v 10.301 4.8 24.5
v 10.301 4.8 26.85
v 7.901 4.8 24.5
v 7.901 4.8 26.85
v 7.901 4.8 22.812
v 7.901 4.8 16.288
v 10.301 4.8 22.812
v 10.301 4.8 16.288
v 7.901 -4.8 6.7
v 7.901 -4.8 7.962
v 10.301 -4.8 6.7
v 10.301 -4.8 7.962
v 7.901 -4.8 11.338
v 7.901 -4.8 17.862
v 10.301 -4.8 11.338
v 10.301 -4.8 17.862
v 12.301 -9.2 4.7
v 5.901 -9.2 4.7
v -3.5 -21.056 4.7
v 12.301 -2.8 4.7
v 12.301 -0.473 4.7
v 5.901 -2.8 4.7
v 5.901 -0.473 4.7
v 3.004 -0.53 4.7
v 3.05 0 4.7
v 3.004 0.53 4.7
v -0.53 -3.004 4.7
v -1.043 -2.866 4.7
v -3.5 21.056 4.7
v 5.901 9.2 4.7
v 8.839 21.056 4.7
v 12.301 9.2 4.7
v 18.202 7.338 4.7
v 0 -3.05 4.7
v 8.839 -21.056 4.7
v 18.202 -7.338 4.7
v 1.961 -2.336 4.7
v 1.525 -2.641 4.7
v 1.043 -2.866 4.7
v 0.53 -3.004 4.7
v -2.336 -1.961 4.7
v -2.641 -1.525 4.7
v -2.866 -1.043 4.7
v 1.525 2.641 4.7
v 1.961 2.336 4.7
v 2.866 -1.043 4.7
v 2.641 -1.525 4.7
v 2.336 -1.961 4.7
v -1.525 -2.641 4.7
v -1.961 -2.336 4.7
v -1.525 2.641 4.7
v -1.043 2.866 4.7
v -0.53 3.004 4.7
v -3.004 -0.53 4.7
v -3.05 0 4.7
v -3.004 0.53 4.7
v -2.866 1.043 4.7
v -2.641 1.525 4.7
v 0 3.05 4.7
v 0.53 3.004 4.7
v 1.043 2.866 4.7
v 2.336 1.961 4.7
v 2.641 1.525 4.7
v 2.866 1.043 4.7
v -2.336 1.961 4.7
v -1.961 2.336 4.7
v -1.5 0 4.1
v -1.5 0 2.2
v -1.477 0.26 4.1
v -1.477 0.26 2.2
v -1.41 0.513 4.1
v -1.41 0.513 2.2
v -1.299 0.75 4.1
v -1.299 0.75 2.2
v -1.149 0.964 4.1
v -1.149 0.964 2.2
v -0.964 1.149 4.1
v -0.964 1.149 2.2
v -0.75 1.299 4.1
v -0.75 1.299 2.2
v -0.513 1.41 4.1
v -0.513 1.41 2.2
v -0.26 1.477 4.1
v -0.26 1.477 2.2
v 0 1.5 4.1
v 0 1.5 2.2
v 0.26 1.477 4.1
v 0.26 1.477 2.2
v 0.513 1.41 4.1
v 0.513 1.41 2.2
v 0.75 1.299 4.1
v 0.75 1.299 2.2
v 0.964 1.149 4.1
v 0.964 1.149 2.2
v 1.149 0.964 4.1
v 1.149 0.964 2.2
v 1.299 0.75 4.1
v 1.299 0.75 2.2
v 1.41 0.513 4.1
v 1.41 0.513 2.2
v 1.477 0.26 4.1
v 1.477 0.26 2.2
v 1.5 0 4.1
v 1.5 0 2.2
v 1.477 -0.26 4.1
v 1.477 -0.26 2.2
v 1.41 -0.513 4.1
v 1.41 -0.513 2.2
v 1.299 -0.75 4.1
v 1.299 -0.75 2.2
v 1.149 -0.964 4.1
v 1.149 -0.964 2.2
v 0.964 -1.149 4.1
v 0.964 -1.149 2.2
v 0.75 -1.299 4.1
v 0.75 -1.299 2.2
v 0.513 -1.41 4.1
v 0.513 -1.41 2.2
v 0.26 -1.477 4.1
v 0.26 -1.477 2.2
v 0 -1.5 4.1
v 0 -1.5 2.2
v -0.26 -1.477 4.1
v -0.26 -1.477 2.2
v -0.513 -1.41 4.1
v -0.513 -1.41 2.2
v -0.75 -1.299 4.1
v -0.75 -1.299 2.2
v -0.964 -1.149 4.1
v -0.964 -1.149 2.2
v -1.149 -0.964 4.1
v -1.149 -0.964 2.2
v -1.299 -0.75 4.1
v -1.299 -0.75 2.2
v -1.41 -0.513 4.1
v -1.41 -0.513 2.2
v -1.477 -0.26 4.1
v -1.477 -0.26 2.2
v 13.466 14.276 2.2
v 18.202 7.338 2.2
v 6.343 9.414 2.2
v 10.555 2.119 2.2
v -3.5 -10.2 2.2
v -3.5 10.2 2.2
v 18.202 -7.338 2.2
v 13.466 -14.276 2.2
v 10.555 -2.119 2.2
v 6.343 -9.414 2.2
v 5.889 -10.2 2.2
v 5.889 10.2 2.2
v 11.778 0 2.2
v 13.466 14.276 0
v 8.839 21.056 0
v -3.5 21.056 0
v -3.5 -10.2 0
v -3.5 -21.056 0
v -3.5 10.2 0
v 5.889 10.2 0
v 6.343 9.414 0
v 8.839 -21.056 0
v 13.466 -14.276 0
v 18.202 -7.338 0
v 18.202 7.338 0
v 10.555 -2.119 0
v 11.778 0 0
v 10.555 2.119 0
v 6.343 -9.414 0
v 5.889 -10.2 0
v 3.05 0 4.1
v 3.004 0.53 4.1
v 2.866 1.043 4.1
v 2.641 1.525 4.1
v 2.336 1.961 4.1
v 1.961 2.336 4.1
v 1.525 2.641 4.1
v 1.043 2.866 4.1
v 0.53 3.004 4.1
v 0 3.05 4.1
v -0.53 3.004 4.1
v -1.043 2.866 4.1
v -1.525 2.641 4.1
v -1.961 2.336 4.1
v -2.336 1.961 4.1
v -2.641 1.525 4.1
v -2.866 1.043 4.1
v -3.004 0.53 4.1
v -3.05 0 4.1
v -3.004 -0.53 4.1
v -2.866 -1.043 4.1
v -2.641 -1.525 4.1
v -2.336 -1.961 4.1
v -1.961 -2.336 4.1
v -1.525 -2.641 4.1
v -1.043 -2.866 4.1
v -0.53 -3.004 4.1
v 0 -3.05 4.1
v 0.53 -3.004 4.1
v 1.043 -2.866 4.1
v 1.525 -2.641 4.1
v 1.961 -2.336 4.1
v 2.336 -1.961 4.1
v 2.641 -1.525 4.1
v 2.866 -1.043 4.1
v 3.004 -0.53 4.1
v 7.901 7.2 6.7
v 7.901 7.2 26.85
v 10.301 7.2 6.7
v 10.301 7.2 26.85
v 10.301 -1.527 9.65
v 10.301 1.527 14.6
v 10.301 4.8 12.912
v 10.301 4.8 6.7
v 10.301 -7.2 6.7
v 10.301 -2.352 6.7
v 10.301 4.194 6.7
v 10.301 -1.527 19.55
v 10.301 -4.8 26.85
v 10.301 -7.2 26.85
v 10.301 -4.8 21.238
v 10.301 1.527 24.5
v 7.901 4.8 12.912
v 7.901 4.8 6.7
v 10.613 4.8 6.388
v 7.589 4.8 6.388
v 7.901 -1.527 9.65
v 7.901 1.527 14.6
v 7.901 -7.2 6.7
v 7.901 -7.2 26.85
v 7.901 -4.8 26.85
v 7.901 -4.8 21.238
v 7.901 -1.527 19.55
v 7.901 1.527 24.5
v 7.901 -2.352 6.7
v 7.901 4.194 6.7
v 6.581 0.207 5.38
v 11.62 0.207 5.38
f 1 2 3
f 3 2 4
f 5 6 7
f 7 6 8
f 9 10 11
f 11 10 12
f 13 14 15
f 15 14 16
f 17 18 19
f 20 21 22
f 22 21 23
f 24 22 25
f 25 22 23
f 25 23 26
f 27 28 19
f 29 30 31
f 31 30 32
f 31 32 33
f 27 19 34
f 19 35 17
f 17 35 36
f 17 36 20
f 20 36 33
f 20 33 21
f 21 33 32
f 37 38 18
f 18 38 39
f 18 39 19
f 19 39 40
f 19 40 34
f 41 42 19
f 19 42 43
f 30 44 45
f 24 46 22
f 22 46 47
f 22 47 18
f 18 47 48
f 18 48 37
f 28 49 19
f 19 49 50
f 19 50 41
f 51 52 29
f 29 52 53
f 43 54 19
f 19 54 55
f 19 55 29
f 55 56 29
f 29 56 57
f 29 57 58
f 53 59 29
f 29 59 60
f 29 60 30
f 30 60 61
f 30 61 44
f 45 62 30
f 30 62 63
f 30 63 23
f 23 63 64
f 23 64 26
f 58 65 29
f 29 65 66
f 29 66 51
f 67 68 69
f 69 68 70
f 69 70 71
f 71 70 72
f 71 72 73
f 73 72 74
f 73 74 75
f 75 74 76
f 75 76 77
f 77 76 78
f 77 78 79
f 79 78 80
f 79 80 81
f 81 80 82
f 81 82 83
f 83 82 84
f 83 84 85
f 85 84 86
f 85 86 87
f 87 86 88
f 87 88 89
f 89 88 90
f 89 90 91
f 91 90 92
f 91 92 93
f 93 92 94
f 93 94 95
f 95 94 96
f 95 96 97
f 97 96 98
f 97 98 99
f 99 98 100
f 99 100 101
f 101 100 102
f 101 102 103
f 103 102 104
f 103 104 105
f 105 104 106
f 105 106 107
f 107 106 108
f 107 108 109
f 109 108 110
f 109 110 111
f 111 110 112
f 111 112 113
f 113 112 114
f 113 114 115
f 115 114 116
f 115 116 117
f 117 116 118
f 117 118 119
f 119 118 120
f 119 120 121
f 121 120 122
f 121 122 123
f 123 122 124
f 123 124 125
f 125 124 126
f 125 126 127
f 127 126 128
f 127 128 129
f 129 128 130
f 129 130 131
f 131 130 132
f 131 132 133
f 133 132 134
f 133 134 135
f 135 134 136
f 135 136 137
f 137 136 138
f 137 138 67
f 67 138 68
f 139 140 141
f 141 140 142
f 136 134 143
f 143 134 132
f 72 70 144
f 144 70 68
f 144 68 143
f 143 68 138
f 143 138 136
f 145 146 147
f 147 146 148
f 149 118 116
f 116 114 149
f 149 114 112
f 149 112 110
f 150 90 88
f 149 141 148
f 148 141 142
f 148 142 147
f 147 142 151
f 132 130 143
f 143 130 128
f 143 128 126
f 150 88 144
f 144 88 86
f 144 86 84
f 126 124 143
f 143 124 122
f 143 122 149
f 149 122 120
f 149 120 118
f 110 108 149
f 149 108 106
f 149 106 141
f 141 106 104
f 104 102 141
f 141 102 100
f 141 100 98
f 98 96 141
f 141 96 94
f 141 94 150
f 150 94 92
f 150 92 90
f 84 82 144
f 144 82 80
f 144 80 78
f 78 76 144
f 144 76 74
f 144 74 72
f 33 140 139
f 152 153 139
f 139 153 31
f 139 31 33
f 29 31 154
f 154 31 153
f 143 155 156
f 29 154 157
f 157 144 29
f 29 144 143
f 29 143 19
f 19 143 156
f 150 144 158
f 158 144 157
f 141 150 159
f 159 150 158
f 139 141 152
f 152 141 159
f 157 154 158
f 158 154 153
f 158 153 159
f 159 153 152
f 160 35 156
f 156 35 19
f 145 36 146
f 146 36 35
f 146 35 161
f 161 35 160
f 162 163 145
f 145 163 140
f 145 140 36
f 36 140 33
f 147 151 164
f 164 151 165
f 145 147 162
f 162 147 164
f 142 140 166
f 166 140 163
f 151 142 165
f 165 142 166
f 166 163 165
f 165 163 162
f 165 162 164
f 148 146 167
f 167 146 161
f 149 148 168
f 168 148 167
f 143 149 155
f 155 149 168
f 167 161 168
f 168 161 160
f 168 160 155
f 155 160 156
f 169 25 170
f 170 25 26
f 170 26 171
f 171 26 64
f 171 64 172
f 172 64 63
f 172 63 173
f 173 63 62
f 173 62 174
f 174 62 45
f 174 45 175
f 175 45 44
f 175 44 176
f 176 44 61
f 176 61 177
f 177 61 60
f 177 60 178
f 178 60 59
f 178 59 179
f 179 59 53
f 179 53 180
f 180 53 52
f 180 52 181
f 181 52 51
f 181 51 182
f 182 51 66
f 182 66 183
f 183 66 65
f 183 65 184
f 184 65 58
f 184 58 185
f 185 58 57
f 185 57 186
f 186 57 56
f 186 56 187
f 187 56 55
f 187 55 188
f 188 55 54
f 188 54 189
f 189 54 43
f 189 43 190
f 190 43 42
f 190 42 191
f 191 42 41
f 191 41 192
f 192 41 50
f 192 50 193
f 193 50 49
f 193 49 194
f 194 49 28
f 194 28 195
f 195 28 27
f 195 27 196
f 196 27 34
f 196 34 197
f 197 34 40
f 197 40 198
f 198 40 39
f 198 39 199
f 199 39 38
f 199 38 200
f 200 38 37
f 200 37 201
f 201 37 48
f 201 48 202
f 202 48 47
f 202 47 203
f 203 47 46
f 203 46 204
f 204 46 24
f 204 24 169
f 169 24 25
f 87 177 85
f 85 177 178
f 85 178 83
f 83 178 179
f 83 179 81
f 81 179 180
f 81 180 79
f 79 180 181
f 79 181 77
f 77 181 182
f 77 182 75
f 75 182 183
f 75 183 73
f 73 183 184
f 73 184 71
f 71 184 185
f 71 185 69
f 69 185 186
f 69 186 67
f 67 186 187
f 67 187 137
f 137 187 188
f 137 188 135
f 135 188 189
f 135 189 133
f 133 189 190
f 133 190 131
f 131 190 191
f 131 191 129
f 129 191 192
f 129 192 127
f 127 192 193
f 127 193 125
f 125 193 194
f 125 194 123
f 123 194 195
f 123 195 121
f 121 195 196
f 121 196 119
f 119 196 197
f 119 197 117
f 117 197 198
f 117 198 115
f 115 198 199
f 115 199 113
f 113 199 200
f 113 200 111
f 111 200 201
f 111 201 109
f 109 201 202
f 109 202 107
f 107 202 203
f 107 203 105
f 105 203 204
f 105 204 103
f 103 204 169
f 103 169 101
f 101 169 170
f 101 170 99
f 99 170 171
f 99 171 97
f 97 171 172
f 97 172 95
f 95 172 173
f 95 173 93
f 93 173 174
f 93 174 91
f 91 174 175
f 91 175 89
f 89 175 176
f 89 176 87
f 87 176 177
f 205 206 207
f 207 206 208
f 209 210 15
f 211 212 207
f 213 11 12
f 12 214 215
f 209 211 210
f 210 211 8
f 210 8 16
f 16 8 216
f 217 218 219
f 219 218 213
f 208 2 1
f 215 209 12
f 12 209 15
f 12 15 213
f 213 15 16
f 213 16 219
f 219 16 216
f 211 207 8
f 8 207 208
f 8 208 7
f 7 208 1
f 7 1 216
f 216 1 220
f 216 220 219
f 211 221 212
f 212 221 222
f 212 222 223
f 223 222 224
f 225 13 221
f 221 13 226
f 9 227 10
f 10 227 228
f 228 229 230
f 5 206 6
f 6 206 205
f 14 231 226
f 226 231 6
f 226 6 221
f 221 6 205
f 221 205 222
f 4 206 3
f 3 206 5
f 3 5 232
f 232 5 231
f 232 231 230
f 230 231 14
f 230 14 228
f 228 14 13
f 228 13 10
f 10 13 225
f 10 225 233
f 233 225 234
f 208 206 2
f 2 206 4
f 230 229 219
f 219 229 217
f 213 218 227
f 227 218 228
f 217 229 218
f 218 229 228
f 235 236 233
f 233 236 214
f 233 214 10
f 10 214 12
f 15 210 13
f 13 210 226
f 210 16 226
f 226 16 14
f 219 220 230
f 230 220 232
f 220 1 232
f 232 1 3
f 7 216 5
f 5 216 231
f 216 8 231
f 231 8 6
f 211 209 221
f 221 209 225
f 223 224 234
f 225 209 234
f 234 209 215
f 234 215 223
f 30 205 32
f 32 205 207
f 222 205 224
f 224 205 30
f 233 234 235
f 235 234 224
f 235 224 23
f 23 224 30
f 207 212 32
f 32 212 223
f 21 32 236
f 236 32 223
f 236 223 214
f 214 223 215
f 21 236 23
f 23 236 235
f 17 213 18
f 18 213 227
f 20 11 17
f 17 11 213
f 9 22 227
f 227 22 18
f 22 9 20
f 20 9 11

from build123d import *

# Parameters (mm, degrees)
BOSS_EXTRUDE1_DEPTH   = 2.2
BOSS_EXTRUDE1_2_DEPTH = 2.2
BOSS_EXTRUDE1_3_DEPTH = 2.2
SKETCH3_R             = 1.5
BOSS_EXTRUDE2_DEPTH   = 2.5
SKETCH4_R             = 3.05
CUT_EXTRUDE1_DEPTH    = 0.6
SKETCH5_W             = 2.4
SKETCH5_H             = 2.4
BOSS_EXTRUDE3_DEPTH   = 22.15
BOSS_EXTRUDE4_DEPTH   = 2.4
CHAMFER1_SIZE         = 2
CHAMFER1_SIZE_2       = 1.48467926


with BuildPart() as part:
    # Sketch1 → Boss-Extrude1 (new body)
    with BuildSketch(Plane.XY):
        Polygon((-3.5, 21.055685406), (-3.5, 10.2), (5.888972746, 10.2), (6.342667922, 9.414176903), (13.466375906, 14.276390289), (8.839237969, 21.055685406), align=None)
    extrude(amount=BOSS_EXTRUDE1_DEPTH)



with BuildPart() as body_2:
    # Sketch1 → Boss-Extrude1 2 (new body)
    with BuildSketch(Plane.XY):
        Polygon((18.201821848, -7.338411352), (10.554607275, -2.118883945), (11.777945491, 0), (10.554607275, 2.118883945), (18.201821848, 7.338411352), align=None)
    extrude(amount=BOSS_EXTRUDE1_2_DEPTH)


with BuildPart() as body_3:
    # Sketch1 → Boss-Extrude1 3 (new body)
    with BuildSketch(Plane.XY):
        Polygon((8.839237969, -21.055685406), (13.466375906, -14.276390289), (6.342667922, -9.414176903), (5.888972746, -10.2), (-3.5, -10.2), (-3.5, -21.055685406), align=None)
    extrude(amount=BOSS_EXTRUDE1_3_DEPTH)


with BuildPart() as part_1:
    add(part.part)

    add(body_2.part)  # Boss-Extrude2 merges body 2

    add(body_3.part)  # Boss-Extrude2 merges body 3
    # Sketch3 → Boss-Extrude2 (add)
    with BuildSketch(Plane.XY.offset(2.2)):
        Polygon((-3.5, 21.055685406), (-3.5, -21.055685406), (8.839237969, -21.055685406), (18.201821848, -7.338411352), (18.201821848, 7.338411352), (8.839237969, 21.055685406), align=None)
        Circle(SKETCH3_R, mode=Mode.SUBTRACT)
    extrude(amount=BOSS_EXTRUDE2_DEPTH)

    # Sketch4 → Cut-Extrude1 (cut)
    with BuildSketch(Plane.XY.offset(4.7)):
        Circle(SKETCH4_R)
    extrude(amount=-CUT_EXTRUDE1_DEPTH, mode=Mode.SUBTRACT)

    # Sketch5 → Boss-Extrude3 (add)
    with BuildSketch(Plane.XY.offset(4.7)):
        with Locations((9.100910924, 6)):
            Rectangle(SKETCH5_W, SKETCH5_H)
        with Locations((9.100910924, -6)):
            Rectangle(SKETCH5_W, SKETCH5_H)
    extrude(amount=BOSS_EXTRUDE3_DEPTH)

    # Sketch6 → Boss-Extrude4 (add)
    with BuildSketch(Plane(origin=(10.300910924, 0, 0), x_dir=(0, 0, -1), z_dir=(1, 0, 0))):
        Polygon((-6.387662753, 4.8), (-9.65, -1.526957086), (-12.912337247, 4.8), (-16.287662753, 4.8), (-19.55, -1.526957086), (-22.812337247, 4.8), (-24.5, 4.8), (-24.5, 1.526957086), (-21.237662753, -4.8), (-17.862337247, -4.8), (-14.6, 1.526957086), (-11.337662753, -4.8), (-7.962337247, -4.8), (-4.7, 1.526957086), (-4.7, 4.8), align=None)
    extrude(amount=-BOSS_EXTRUDE4_DEPTH)

    # Chamfer1
    # the kernel refuses this chamfer: 2, 1.48467926 mm, written as the material it adds along each edge
    with BuildSketch(Plane(origin=(15.4442769, 1.526957086, 4.7), x_dir=(0, -1, 0), z_dir=(-1, 0, 0))) as chamfer1_piece_1_section:
        Polygon((CHAMFER1_SIZE, 0), (CHAMFER1_SIZE_2 * 0.888803167403, CHAMFER1_SIZE_2 * 0.458289133192), (0, 0), align=None)
    chamfer1_piece_1 = extrude(amount=12.686731952, mode=Mode.PRIVATE)
    chamfer1_piece_1 = split(chamfer1_piece_1, bisect_by=Plane(origin=(10.672593912, 1.526957086, 9.471682988), z_dir=(0.7071067811865476, 0, -0.7071067811865476)), keep=Keep.TOP, mode=Mode.PRIVATE)
    chamfer1_piece_1 = split(chamfer1_piece_1, bisect_by=Plane(origin=(13.872593912, 1.526957086, 3.128317012), z_dir=(-0.7071067811865476, 0, -0.7071067811865476)), keep=Keep.TOP, mode=Mode.PRIVATE)
    add(chamfer1_piece_1)
    with BuildSketch(Plane(origin=(2.757544948, 7.2, 4.7), x_dir=(0, 1, 0), z_dir=(1, 0, 0))) as chamfer1_piece_2_section:
        Polygon((CHAMFER1_SIZE, 0), (0, CHAMFER1_SIZE), (0, 0), align=None)
    chamfer1_piece_2 = extrude(amount=12.686731952, mode=Mode.PRIVATE)
    chamfer1_piece_2 = split(chamfer1_piece_2, bisect_by=Plane(origin=(4.329227936, 7.2, 3.128317012), z_dir=(0.7071067811865476, 0, -0.7071067811865476)), keep=Keep.TOP, mode=Mode.PRIVATE)
    chamfer1_piece_2 = split(chamfer1_piece_2, bisect_by=Plane(origin=(7.529227936, 7.2, 9.471682988), z_dir=(-0.7071067811865476, 0, -0.7071067811865476)), keep=Keep.TOP, mode=Mode.PRIVATE)
    add(chamfer1_piece_2)
    with BuildSketch(Plane(origin=(10.300910924, 12.343365976, 4.7), x_dir=(1, 0, 0), z_dir=(0, -1, 0))) as chamfer1_piece_3_section:
        Polygon((CHAMFER1_SIZE, 0), (0, CHAMFER1_SIZE), (0, 0), align=None)
    chamfer1_piece_3 = extrude(amount=15.959774866, mode=Mode.PRIVATE)
    chamfer1_piece_3 = split(chamfer1_piece_3, bisect_by=Plane(origin=(10.300910924, 4.8, 4.7), z_dir=(0, 1, 0)), keep=Keep.TOP, mode=Mode.PRIVATE)
    chamfer1_piece_3 = split(chamfer1_piece_3, bisect_by=Plane(origin=(10.300910924, 10.771682988, 3.128317012), z_dir=(0, -0.7071067811865476, -0.7071067811865476)), keep=Keep.TOP, mode=Mode.PRIVATE)
    add(chamfer1_piece_3)
    with BuildSketch(Plane(origin=(10.300910924, 12.343365976, 4.7), x_dir=(1, 0, 0), z_dir=(0, -1, 0))) as chamfer1_piece_4_section:
        Polygon((CHAMFER1_SIZE, 0), (0, CHAMFER1_SIZE), (0, 0), align=None)
    chamfer1_piece_4 = extrude(amount=15.959774866, mode=Mode.PRIVATE)
    chamfer1_piece_4 = split(chamfer1_piece_4, bisect_by=Plane(origin=(10.300910924, 11.446474594, 2.96057429), z_dir=(0, -0.4582891331950048, -0.8888031674084939)), keep=Keep.TOP, mode=Mode.PRIVATE)
    chamfer1_piece_4 = split(chamfer1_piece_4, bisect_by=Plane(origin=(10.300910924, 5.935161531, 11.108204445), z_dir=(0, 0.7071067811865488, -0.7071067811865462)), keep=Keep.TOP, mode=Mode.PRIVATE)
    add(chamfer1_piece_4)
    with BuildSketch(Plane(origin=(10.300910924, 12.343365976, 4.7), x_dir=(1, 0, 0), z_dir=(0, -1, 0))) as chamfer1_piece_5_section:
        Polygon((CHAMFER1_SIZE, 0), (0, CHAMFER1_SIZE), (0, 0), align=None)
    chamfer1_piece_5 = extrude(amount=15.959774866, mode=Mode.PRIVATE)
    chamfer1_piece_5 = split(chamfer1_piece_5, bisect_by=Plane(origin=(10.300910924, 10.071607195, 0.294164788), z_dir=(0, 0.4582891331950048, 0.8888031674084939)), keep=Keep.TOP, mode=Mode.PRIVATE)
    chamfer1_piece_5 = split(chamfer1_piece_5, bisect_by=Plane(origin=(10.300910924, 5.935161531, 11.108204445), z_dir=(0, -0.7071067811865488, 0.7071067811865462)), keep=Keep.TOP, mode=Mode.PRIVATE)
    add(chamfer1_piece_5)
    with BuildSketch(Plane(origin=(7.900910924, -3.61640889, 4.7), x_dir=(-1, 0, 0), z_dir=(0, 1, 0))) as chamfer1_piece_6_section:
        Polygon((CHAMFER1_SIZE, 0), (0, CHAMFER1_SIZE), (0, 0), align=None)
    chamfer1_piece_6 = extrude(amount=15.959774866, mode=Mode.PRIVATE)
    chamfer1_piece_6 = split(chamfer1_piece_6, bisect_by=Plane(origin=(7.900910924, -2.53615324, 6.795041262), z_dir=(0, 0.4582891331950048, 0.8888031674084939)), keep=Keep.TOP, mode=Mode.PRIVATE)
    chamfer1_piece_6 = split(chamfer1_piece_6, bisect_by=Plane(origin=(7.900910924, -1.16128584, 9.461450764), z_dir=(0, -0.4582891331950048, -0.8888031674084939)), keep=Keep.TOP, mode=Mode.PRIVATE)
    add(chamfer1_piece_6)
    with BuildSketch(Plane(origin=(7.900910924, -3.61640889, 4.7), x_dir=(-1, 0, 0), z_dir=(0, 1, 0))) as chamfer1_piece_7_section:
        Polygon((CHAMFER1_SIZE, 0), (0, CHAMFER1_SIZE), (0, 0), align=None)
    chamfer1_piece_7 = extrude(amount=15.959774866, mode=Mode.PRIVATE)
    chamfer1_piece_7 = split(chamfer1_piece_7, bisect_by=Plane(origin=(7.900910924, -1.16128584, 9.461450764), z_dir=(0, -0.4582891331950048, -0.8888031674084939)), keep=Keep.TOP, mode=Mode.PRIVATE)
    chamfer1_piece_7 = split(chamfer1_piece_7, bisect_by=Plane(origin=(7.900910924, -2.044725902, 3.128317012), z_dir=(0, 0.7071067811865488, -0.7071067811865462)), keep=Keep.TOP, mode=Mode.PRIVATE)
    add(chamfer1_piece_7)
    with BuildSketch(Plane(origin=(7.900910924, -3.61640889, 4.7), x_dir=(-1, 0, 0), z_dir=(0, 1, 0))) as chamfer1_piece_8_section:
        Polygon((CHAMFER1_SIZE, 0), (0, CHAMFER1_SIZE), (0, 0), align=None)
    chamfer1_piece_8 = extrude(amount=15.959774866, mode=Mode.PRIVATE)
    chamfer1_piece_8 = split(chamfer1_piece_8, bisect_by=Plane(origin=(7.900910924, 4.8, 4.7), z_dir=(0, 1, 0)), keep=Keep.TOP, mode=Mode.PRIVATE)
    chamfer1_piece_8 = split(chamfer1_piece_8, bisect_by=Plane(origin=(7.900910924, 2.791795555, 11.108204445), z_dir=(0, -0.7071067811865476, -0.7071067811865476)), keep=Keep.TOP, mode=Mode.PRIVATE)
    add(chamfer1_piece_8)
    with BuildSketch(Plane(origin=(2.757544948, -4.8, 4.7), x_dir=(0, 1, 0), z_dir=(1, 0, 0))) as chamfer1_piece_9_section:
        Polygon((CHAMFER1_SIZE, 0), (0, CHAMFER1_SIZE), (0, 0), align=None)
    chamfer1_piece_9 = extrude(amount=12.686731952, mode=Mode.PRIVATE)
    chamfer1_piece_9 = split(chamfer1_piece_9, bisect_by=Plane(origin=(4.329227936, -4.8, 3.128317012), z_dir=(0.7071067811865476, 0, -0.7071067811865476)), keep=Keep.TOP, mode=Mode.PRIVATE)
    chamfer1_piece_9 = split(chamfer1_piece_9, bisect_by=Plane(origin=(7.529227936, -4.8, 9.471682988), z_dir=(-0.7071067811865476, 0, -0.7071067811865476)), keep=Keep.TOP, mode=Mode.PRIVATE)
    add(chamfer1_piece_9)
    with BuildSketch(Plane(origin=(10.300910924, 0.343365976, 4.7), x_dir=(1, 0, 0), z_dir=(0, -1, 0))) as chamfer1_piece_10_section:
        Polygon((CHAMFER1_SIZE, 0), (0, CHAMFER1_SIZE), (0, 0), align=None)
    chamfer1_piece_10 = extrude(amount=12.686731952, mode=Mode.PRIVATE)
    chamfer1_piece_10 = split(chamfer1_piece_10, bisect_by=Plane(origin=(10.300910924, 0.59195435, 5.182110786), z_dir=(0, 0.4582891331950048, 0.8888031674084939)), keep=Keep.TOP, mode=Mode.PRIVATE)
    add(chamfer1_piece_10)
    with BuildSketch(Plane(origin=(10.300910924, 0.343365976, 4.7), x_dir=(1, 0, 0), z_dir=(0, -1, 0))) as chamfer1_piece_11_section:
        Polygon((CHAMFER1_SIZE, 0), (0, CHAMFER1_SIZE), (0, 0), align=None)
    chamfer1_piece_11 = extrude(amount=12.686731952, mode=Mode.PRIVATE)
    chamfer1_piece_11 = split(chamfer1_piece_11, bisect_by=Plane(origin=(10.300910924, -4.428317012, 9.471682988), z_dir=(0, 0.7071067811865477, -0.7071067811865474)), keep=Keep.TOP, mode=Mode.PRIVATE)
    chamfer1_piece_11 = split(chamfer1_piece_11, bisect_by=Plane(origin=(10.300910924, -1.228317012, 3.128317012), z_dir=(0, -0.7071067811865476, -0.7071067811865476)), keep=Keep.TOP, mode=Mode.PRIVATE)
    add(chamfer1_piece_11)
    with BuildSketch(Plane(origin=(15.4442769, -7.2, 4.7), x_dir=(0, -1, 0), z_dir=(-1, 0, 0))) as chamfer1_piece_12_section:
        Polygon((CHAMFER1_SIZE, 0), (0, CHAMFER1_SIZE), (0, 0), align=None)
    chamfer1_piece_12 = extrude(amount=12.686731952, mode=Mode.PRIVATE)
    chamfer1_piece_12 = split(chamfer1_piece_12, bisect_by=Plane(origin=(10.672593912, -7.2, 9.471682988), z_dir=(0.7071067811865476, 0, -0.7071067811865476)), keep=Keep.TOP, mode=Mode.PRIVATE)
    chamfer1_piece_12 = split(chamfer1_piece_12, bisect_by=Plane(origin=(13.872593912, -7.2, 3.128317012), z_dir=(-0.7071067811865476, 0, -0.7071067811865476)), keep=Keep.TOP, mode=Mode.PRIVATE)
    add(chamfer1_piece_12)
    with BuildSketch(Plane(origin=(7.900910924, -12.343365976, 4.7), x_dir=(-1, 0, 0), z_dir=(0, 1, 0))) as chamfer1_piece_13_section:
        Polygon((CHAMFER1_SIZE, 0), (0, CHAMFER1_SIZE), (0, 0), align=None)
    chamfer1_piece_13 = extrude(amount=12.686731952, mode=Mode.PRIVATE)
    chamfer1_piece_13 = split(chamfer1_piece_13, bisect_by=Plane(origin=(7.900910924, -10.771682988, 3.128317012), z_dir=(0, 0.7071067811865477, -0.7071067811865474)), keep=Keep.TOP, mode=Mode.PRIVATE)
    chamfer1_piece_13 = split(chamfer1_piece_13, bisect_by=Plane(origin=(7.900910924, -7.571682988, 9.471682988), z_dir=(0, -0.7071067811865476, -0.7071067811865476)), keep=Keep.TOP, mode=Mode.PRIVATE)
    add(chamfer1_piece_13)
    with BuildSketch(Plane(origin=(7.900910924, -12.343365976, 4.7), x_dir=(-1, 0, 0), z_dir=(0, 1, 0))) as chamfer1_piece_14_section:
        Polygon((CHAMFER1_SIZE, 0), (0, CHAMFER1_SIZE), (0, 0), align=None)
    chamfer1_piece_14 = extrude(amount=12.686731952, mode=Mode.PRIVATE)
    chamfer1_piece_14 = split(chamfer1_piece_14, bisect_by=Plane(origin=(7.900910924, -9.43019687, 10.349782509), z_dir=(0, 0.4582891331950048, 0.8888031674084939)), keep=Keep.TOP, mode=Mode.PRIVATE)
    add(chamfer1_piece_14)


solid = part_1.part
